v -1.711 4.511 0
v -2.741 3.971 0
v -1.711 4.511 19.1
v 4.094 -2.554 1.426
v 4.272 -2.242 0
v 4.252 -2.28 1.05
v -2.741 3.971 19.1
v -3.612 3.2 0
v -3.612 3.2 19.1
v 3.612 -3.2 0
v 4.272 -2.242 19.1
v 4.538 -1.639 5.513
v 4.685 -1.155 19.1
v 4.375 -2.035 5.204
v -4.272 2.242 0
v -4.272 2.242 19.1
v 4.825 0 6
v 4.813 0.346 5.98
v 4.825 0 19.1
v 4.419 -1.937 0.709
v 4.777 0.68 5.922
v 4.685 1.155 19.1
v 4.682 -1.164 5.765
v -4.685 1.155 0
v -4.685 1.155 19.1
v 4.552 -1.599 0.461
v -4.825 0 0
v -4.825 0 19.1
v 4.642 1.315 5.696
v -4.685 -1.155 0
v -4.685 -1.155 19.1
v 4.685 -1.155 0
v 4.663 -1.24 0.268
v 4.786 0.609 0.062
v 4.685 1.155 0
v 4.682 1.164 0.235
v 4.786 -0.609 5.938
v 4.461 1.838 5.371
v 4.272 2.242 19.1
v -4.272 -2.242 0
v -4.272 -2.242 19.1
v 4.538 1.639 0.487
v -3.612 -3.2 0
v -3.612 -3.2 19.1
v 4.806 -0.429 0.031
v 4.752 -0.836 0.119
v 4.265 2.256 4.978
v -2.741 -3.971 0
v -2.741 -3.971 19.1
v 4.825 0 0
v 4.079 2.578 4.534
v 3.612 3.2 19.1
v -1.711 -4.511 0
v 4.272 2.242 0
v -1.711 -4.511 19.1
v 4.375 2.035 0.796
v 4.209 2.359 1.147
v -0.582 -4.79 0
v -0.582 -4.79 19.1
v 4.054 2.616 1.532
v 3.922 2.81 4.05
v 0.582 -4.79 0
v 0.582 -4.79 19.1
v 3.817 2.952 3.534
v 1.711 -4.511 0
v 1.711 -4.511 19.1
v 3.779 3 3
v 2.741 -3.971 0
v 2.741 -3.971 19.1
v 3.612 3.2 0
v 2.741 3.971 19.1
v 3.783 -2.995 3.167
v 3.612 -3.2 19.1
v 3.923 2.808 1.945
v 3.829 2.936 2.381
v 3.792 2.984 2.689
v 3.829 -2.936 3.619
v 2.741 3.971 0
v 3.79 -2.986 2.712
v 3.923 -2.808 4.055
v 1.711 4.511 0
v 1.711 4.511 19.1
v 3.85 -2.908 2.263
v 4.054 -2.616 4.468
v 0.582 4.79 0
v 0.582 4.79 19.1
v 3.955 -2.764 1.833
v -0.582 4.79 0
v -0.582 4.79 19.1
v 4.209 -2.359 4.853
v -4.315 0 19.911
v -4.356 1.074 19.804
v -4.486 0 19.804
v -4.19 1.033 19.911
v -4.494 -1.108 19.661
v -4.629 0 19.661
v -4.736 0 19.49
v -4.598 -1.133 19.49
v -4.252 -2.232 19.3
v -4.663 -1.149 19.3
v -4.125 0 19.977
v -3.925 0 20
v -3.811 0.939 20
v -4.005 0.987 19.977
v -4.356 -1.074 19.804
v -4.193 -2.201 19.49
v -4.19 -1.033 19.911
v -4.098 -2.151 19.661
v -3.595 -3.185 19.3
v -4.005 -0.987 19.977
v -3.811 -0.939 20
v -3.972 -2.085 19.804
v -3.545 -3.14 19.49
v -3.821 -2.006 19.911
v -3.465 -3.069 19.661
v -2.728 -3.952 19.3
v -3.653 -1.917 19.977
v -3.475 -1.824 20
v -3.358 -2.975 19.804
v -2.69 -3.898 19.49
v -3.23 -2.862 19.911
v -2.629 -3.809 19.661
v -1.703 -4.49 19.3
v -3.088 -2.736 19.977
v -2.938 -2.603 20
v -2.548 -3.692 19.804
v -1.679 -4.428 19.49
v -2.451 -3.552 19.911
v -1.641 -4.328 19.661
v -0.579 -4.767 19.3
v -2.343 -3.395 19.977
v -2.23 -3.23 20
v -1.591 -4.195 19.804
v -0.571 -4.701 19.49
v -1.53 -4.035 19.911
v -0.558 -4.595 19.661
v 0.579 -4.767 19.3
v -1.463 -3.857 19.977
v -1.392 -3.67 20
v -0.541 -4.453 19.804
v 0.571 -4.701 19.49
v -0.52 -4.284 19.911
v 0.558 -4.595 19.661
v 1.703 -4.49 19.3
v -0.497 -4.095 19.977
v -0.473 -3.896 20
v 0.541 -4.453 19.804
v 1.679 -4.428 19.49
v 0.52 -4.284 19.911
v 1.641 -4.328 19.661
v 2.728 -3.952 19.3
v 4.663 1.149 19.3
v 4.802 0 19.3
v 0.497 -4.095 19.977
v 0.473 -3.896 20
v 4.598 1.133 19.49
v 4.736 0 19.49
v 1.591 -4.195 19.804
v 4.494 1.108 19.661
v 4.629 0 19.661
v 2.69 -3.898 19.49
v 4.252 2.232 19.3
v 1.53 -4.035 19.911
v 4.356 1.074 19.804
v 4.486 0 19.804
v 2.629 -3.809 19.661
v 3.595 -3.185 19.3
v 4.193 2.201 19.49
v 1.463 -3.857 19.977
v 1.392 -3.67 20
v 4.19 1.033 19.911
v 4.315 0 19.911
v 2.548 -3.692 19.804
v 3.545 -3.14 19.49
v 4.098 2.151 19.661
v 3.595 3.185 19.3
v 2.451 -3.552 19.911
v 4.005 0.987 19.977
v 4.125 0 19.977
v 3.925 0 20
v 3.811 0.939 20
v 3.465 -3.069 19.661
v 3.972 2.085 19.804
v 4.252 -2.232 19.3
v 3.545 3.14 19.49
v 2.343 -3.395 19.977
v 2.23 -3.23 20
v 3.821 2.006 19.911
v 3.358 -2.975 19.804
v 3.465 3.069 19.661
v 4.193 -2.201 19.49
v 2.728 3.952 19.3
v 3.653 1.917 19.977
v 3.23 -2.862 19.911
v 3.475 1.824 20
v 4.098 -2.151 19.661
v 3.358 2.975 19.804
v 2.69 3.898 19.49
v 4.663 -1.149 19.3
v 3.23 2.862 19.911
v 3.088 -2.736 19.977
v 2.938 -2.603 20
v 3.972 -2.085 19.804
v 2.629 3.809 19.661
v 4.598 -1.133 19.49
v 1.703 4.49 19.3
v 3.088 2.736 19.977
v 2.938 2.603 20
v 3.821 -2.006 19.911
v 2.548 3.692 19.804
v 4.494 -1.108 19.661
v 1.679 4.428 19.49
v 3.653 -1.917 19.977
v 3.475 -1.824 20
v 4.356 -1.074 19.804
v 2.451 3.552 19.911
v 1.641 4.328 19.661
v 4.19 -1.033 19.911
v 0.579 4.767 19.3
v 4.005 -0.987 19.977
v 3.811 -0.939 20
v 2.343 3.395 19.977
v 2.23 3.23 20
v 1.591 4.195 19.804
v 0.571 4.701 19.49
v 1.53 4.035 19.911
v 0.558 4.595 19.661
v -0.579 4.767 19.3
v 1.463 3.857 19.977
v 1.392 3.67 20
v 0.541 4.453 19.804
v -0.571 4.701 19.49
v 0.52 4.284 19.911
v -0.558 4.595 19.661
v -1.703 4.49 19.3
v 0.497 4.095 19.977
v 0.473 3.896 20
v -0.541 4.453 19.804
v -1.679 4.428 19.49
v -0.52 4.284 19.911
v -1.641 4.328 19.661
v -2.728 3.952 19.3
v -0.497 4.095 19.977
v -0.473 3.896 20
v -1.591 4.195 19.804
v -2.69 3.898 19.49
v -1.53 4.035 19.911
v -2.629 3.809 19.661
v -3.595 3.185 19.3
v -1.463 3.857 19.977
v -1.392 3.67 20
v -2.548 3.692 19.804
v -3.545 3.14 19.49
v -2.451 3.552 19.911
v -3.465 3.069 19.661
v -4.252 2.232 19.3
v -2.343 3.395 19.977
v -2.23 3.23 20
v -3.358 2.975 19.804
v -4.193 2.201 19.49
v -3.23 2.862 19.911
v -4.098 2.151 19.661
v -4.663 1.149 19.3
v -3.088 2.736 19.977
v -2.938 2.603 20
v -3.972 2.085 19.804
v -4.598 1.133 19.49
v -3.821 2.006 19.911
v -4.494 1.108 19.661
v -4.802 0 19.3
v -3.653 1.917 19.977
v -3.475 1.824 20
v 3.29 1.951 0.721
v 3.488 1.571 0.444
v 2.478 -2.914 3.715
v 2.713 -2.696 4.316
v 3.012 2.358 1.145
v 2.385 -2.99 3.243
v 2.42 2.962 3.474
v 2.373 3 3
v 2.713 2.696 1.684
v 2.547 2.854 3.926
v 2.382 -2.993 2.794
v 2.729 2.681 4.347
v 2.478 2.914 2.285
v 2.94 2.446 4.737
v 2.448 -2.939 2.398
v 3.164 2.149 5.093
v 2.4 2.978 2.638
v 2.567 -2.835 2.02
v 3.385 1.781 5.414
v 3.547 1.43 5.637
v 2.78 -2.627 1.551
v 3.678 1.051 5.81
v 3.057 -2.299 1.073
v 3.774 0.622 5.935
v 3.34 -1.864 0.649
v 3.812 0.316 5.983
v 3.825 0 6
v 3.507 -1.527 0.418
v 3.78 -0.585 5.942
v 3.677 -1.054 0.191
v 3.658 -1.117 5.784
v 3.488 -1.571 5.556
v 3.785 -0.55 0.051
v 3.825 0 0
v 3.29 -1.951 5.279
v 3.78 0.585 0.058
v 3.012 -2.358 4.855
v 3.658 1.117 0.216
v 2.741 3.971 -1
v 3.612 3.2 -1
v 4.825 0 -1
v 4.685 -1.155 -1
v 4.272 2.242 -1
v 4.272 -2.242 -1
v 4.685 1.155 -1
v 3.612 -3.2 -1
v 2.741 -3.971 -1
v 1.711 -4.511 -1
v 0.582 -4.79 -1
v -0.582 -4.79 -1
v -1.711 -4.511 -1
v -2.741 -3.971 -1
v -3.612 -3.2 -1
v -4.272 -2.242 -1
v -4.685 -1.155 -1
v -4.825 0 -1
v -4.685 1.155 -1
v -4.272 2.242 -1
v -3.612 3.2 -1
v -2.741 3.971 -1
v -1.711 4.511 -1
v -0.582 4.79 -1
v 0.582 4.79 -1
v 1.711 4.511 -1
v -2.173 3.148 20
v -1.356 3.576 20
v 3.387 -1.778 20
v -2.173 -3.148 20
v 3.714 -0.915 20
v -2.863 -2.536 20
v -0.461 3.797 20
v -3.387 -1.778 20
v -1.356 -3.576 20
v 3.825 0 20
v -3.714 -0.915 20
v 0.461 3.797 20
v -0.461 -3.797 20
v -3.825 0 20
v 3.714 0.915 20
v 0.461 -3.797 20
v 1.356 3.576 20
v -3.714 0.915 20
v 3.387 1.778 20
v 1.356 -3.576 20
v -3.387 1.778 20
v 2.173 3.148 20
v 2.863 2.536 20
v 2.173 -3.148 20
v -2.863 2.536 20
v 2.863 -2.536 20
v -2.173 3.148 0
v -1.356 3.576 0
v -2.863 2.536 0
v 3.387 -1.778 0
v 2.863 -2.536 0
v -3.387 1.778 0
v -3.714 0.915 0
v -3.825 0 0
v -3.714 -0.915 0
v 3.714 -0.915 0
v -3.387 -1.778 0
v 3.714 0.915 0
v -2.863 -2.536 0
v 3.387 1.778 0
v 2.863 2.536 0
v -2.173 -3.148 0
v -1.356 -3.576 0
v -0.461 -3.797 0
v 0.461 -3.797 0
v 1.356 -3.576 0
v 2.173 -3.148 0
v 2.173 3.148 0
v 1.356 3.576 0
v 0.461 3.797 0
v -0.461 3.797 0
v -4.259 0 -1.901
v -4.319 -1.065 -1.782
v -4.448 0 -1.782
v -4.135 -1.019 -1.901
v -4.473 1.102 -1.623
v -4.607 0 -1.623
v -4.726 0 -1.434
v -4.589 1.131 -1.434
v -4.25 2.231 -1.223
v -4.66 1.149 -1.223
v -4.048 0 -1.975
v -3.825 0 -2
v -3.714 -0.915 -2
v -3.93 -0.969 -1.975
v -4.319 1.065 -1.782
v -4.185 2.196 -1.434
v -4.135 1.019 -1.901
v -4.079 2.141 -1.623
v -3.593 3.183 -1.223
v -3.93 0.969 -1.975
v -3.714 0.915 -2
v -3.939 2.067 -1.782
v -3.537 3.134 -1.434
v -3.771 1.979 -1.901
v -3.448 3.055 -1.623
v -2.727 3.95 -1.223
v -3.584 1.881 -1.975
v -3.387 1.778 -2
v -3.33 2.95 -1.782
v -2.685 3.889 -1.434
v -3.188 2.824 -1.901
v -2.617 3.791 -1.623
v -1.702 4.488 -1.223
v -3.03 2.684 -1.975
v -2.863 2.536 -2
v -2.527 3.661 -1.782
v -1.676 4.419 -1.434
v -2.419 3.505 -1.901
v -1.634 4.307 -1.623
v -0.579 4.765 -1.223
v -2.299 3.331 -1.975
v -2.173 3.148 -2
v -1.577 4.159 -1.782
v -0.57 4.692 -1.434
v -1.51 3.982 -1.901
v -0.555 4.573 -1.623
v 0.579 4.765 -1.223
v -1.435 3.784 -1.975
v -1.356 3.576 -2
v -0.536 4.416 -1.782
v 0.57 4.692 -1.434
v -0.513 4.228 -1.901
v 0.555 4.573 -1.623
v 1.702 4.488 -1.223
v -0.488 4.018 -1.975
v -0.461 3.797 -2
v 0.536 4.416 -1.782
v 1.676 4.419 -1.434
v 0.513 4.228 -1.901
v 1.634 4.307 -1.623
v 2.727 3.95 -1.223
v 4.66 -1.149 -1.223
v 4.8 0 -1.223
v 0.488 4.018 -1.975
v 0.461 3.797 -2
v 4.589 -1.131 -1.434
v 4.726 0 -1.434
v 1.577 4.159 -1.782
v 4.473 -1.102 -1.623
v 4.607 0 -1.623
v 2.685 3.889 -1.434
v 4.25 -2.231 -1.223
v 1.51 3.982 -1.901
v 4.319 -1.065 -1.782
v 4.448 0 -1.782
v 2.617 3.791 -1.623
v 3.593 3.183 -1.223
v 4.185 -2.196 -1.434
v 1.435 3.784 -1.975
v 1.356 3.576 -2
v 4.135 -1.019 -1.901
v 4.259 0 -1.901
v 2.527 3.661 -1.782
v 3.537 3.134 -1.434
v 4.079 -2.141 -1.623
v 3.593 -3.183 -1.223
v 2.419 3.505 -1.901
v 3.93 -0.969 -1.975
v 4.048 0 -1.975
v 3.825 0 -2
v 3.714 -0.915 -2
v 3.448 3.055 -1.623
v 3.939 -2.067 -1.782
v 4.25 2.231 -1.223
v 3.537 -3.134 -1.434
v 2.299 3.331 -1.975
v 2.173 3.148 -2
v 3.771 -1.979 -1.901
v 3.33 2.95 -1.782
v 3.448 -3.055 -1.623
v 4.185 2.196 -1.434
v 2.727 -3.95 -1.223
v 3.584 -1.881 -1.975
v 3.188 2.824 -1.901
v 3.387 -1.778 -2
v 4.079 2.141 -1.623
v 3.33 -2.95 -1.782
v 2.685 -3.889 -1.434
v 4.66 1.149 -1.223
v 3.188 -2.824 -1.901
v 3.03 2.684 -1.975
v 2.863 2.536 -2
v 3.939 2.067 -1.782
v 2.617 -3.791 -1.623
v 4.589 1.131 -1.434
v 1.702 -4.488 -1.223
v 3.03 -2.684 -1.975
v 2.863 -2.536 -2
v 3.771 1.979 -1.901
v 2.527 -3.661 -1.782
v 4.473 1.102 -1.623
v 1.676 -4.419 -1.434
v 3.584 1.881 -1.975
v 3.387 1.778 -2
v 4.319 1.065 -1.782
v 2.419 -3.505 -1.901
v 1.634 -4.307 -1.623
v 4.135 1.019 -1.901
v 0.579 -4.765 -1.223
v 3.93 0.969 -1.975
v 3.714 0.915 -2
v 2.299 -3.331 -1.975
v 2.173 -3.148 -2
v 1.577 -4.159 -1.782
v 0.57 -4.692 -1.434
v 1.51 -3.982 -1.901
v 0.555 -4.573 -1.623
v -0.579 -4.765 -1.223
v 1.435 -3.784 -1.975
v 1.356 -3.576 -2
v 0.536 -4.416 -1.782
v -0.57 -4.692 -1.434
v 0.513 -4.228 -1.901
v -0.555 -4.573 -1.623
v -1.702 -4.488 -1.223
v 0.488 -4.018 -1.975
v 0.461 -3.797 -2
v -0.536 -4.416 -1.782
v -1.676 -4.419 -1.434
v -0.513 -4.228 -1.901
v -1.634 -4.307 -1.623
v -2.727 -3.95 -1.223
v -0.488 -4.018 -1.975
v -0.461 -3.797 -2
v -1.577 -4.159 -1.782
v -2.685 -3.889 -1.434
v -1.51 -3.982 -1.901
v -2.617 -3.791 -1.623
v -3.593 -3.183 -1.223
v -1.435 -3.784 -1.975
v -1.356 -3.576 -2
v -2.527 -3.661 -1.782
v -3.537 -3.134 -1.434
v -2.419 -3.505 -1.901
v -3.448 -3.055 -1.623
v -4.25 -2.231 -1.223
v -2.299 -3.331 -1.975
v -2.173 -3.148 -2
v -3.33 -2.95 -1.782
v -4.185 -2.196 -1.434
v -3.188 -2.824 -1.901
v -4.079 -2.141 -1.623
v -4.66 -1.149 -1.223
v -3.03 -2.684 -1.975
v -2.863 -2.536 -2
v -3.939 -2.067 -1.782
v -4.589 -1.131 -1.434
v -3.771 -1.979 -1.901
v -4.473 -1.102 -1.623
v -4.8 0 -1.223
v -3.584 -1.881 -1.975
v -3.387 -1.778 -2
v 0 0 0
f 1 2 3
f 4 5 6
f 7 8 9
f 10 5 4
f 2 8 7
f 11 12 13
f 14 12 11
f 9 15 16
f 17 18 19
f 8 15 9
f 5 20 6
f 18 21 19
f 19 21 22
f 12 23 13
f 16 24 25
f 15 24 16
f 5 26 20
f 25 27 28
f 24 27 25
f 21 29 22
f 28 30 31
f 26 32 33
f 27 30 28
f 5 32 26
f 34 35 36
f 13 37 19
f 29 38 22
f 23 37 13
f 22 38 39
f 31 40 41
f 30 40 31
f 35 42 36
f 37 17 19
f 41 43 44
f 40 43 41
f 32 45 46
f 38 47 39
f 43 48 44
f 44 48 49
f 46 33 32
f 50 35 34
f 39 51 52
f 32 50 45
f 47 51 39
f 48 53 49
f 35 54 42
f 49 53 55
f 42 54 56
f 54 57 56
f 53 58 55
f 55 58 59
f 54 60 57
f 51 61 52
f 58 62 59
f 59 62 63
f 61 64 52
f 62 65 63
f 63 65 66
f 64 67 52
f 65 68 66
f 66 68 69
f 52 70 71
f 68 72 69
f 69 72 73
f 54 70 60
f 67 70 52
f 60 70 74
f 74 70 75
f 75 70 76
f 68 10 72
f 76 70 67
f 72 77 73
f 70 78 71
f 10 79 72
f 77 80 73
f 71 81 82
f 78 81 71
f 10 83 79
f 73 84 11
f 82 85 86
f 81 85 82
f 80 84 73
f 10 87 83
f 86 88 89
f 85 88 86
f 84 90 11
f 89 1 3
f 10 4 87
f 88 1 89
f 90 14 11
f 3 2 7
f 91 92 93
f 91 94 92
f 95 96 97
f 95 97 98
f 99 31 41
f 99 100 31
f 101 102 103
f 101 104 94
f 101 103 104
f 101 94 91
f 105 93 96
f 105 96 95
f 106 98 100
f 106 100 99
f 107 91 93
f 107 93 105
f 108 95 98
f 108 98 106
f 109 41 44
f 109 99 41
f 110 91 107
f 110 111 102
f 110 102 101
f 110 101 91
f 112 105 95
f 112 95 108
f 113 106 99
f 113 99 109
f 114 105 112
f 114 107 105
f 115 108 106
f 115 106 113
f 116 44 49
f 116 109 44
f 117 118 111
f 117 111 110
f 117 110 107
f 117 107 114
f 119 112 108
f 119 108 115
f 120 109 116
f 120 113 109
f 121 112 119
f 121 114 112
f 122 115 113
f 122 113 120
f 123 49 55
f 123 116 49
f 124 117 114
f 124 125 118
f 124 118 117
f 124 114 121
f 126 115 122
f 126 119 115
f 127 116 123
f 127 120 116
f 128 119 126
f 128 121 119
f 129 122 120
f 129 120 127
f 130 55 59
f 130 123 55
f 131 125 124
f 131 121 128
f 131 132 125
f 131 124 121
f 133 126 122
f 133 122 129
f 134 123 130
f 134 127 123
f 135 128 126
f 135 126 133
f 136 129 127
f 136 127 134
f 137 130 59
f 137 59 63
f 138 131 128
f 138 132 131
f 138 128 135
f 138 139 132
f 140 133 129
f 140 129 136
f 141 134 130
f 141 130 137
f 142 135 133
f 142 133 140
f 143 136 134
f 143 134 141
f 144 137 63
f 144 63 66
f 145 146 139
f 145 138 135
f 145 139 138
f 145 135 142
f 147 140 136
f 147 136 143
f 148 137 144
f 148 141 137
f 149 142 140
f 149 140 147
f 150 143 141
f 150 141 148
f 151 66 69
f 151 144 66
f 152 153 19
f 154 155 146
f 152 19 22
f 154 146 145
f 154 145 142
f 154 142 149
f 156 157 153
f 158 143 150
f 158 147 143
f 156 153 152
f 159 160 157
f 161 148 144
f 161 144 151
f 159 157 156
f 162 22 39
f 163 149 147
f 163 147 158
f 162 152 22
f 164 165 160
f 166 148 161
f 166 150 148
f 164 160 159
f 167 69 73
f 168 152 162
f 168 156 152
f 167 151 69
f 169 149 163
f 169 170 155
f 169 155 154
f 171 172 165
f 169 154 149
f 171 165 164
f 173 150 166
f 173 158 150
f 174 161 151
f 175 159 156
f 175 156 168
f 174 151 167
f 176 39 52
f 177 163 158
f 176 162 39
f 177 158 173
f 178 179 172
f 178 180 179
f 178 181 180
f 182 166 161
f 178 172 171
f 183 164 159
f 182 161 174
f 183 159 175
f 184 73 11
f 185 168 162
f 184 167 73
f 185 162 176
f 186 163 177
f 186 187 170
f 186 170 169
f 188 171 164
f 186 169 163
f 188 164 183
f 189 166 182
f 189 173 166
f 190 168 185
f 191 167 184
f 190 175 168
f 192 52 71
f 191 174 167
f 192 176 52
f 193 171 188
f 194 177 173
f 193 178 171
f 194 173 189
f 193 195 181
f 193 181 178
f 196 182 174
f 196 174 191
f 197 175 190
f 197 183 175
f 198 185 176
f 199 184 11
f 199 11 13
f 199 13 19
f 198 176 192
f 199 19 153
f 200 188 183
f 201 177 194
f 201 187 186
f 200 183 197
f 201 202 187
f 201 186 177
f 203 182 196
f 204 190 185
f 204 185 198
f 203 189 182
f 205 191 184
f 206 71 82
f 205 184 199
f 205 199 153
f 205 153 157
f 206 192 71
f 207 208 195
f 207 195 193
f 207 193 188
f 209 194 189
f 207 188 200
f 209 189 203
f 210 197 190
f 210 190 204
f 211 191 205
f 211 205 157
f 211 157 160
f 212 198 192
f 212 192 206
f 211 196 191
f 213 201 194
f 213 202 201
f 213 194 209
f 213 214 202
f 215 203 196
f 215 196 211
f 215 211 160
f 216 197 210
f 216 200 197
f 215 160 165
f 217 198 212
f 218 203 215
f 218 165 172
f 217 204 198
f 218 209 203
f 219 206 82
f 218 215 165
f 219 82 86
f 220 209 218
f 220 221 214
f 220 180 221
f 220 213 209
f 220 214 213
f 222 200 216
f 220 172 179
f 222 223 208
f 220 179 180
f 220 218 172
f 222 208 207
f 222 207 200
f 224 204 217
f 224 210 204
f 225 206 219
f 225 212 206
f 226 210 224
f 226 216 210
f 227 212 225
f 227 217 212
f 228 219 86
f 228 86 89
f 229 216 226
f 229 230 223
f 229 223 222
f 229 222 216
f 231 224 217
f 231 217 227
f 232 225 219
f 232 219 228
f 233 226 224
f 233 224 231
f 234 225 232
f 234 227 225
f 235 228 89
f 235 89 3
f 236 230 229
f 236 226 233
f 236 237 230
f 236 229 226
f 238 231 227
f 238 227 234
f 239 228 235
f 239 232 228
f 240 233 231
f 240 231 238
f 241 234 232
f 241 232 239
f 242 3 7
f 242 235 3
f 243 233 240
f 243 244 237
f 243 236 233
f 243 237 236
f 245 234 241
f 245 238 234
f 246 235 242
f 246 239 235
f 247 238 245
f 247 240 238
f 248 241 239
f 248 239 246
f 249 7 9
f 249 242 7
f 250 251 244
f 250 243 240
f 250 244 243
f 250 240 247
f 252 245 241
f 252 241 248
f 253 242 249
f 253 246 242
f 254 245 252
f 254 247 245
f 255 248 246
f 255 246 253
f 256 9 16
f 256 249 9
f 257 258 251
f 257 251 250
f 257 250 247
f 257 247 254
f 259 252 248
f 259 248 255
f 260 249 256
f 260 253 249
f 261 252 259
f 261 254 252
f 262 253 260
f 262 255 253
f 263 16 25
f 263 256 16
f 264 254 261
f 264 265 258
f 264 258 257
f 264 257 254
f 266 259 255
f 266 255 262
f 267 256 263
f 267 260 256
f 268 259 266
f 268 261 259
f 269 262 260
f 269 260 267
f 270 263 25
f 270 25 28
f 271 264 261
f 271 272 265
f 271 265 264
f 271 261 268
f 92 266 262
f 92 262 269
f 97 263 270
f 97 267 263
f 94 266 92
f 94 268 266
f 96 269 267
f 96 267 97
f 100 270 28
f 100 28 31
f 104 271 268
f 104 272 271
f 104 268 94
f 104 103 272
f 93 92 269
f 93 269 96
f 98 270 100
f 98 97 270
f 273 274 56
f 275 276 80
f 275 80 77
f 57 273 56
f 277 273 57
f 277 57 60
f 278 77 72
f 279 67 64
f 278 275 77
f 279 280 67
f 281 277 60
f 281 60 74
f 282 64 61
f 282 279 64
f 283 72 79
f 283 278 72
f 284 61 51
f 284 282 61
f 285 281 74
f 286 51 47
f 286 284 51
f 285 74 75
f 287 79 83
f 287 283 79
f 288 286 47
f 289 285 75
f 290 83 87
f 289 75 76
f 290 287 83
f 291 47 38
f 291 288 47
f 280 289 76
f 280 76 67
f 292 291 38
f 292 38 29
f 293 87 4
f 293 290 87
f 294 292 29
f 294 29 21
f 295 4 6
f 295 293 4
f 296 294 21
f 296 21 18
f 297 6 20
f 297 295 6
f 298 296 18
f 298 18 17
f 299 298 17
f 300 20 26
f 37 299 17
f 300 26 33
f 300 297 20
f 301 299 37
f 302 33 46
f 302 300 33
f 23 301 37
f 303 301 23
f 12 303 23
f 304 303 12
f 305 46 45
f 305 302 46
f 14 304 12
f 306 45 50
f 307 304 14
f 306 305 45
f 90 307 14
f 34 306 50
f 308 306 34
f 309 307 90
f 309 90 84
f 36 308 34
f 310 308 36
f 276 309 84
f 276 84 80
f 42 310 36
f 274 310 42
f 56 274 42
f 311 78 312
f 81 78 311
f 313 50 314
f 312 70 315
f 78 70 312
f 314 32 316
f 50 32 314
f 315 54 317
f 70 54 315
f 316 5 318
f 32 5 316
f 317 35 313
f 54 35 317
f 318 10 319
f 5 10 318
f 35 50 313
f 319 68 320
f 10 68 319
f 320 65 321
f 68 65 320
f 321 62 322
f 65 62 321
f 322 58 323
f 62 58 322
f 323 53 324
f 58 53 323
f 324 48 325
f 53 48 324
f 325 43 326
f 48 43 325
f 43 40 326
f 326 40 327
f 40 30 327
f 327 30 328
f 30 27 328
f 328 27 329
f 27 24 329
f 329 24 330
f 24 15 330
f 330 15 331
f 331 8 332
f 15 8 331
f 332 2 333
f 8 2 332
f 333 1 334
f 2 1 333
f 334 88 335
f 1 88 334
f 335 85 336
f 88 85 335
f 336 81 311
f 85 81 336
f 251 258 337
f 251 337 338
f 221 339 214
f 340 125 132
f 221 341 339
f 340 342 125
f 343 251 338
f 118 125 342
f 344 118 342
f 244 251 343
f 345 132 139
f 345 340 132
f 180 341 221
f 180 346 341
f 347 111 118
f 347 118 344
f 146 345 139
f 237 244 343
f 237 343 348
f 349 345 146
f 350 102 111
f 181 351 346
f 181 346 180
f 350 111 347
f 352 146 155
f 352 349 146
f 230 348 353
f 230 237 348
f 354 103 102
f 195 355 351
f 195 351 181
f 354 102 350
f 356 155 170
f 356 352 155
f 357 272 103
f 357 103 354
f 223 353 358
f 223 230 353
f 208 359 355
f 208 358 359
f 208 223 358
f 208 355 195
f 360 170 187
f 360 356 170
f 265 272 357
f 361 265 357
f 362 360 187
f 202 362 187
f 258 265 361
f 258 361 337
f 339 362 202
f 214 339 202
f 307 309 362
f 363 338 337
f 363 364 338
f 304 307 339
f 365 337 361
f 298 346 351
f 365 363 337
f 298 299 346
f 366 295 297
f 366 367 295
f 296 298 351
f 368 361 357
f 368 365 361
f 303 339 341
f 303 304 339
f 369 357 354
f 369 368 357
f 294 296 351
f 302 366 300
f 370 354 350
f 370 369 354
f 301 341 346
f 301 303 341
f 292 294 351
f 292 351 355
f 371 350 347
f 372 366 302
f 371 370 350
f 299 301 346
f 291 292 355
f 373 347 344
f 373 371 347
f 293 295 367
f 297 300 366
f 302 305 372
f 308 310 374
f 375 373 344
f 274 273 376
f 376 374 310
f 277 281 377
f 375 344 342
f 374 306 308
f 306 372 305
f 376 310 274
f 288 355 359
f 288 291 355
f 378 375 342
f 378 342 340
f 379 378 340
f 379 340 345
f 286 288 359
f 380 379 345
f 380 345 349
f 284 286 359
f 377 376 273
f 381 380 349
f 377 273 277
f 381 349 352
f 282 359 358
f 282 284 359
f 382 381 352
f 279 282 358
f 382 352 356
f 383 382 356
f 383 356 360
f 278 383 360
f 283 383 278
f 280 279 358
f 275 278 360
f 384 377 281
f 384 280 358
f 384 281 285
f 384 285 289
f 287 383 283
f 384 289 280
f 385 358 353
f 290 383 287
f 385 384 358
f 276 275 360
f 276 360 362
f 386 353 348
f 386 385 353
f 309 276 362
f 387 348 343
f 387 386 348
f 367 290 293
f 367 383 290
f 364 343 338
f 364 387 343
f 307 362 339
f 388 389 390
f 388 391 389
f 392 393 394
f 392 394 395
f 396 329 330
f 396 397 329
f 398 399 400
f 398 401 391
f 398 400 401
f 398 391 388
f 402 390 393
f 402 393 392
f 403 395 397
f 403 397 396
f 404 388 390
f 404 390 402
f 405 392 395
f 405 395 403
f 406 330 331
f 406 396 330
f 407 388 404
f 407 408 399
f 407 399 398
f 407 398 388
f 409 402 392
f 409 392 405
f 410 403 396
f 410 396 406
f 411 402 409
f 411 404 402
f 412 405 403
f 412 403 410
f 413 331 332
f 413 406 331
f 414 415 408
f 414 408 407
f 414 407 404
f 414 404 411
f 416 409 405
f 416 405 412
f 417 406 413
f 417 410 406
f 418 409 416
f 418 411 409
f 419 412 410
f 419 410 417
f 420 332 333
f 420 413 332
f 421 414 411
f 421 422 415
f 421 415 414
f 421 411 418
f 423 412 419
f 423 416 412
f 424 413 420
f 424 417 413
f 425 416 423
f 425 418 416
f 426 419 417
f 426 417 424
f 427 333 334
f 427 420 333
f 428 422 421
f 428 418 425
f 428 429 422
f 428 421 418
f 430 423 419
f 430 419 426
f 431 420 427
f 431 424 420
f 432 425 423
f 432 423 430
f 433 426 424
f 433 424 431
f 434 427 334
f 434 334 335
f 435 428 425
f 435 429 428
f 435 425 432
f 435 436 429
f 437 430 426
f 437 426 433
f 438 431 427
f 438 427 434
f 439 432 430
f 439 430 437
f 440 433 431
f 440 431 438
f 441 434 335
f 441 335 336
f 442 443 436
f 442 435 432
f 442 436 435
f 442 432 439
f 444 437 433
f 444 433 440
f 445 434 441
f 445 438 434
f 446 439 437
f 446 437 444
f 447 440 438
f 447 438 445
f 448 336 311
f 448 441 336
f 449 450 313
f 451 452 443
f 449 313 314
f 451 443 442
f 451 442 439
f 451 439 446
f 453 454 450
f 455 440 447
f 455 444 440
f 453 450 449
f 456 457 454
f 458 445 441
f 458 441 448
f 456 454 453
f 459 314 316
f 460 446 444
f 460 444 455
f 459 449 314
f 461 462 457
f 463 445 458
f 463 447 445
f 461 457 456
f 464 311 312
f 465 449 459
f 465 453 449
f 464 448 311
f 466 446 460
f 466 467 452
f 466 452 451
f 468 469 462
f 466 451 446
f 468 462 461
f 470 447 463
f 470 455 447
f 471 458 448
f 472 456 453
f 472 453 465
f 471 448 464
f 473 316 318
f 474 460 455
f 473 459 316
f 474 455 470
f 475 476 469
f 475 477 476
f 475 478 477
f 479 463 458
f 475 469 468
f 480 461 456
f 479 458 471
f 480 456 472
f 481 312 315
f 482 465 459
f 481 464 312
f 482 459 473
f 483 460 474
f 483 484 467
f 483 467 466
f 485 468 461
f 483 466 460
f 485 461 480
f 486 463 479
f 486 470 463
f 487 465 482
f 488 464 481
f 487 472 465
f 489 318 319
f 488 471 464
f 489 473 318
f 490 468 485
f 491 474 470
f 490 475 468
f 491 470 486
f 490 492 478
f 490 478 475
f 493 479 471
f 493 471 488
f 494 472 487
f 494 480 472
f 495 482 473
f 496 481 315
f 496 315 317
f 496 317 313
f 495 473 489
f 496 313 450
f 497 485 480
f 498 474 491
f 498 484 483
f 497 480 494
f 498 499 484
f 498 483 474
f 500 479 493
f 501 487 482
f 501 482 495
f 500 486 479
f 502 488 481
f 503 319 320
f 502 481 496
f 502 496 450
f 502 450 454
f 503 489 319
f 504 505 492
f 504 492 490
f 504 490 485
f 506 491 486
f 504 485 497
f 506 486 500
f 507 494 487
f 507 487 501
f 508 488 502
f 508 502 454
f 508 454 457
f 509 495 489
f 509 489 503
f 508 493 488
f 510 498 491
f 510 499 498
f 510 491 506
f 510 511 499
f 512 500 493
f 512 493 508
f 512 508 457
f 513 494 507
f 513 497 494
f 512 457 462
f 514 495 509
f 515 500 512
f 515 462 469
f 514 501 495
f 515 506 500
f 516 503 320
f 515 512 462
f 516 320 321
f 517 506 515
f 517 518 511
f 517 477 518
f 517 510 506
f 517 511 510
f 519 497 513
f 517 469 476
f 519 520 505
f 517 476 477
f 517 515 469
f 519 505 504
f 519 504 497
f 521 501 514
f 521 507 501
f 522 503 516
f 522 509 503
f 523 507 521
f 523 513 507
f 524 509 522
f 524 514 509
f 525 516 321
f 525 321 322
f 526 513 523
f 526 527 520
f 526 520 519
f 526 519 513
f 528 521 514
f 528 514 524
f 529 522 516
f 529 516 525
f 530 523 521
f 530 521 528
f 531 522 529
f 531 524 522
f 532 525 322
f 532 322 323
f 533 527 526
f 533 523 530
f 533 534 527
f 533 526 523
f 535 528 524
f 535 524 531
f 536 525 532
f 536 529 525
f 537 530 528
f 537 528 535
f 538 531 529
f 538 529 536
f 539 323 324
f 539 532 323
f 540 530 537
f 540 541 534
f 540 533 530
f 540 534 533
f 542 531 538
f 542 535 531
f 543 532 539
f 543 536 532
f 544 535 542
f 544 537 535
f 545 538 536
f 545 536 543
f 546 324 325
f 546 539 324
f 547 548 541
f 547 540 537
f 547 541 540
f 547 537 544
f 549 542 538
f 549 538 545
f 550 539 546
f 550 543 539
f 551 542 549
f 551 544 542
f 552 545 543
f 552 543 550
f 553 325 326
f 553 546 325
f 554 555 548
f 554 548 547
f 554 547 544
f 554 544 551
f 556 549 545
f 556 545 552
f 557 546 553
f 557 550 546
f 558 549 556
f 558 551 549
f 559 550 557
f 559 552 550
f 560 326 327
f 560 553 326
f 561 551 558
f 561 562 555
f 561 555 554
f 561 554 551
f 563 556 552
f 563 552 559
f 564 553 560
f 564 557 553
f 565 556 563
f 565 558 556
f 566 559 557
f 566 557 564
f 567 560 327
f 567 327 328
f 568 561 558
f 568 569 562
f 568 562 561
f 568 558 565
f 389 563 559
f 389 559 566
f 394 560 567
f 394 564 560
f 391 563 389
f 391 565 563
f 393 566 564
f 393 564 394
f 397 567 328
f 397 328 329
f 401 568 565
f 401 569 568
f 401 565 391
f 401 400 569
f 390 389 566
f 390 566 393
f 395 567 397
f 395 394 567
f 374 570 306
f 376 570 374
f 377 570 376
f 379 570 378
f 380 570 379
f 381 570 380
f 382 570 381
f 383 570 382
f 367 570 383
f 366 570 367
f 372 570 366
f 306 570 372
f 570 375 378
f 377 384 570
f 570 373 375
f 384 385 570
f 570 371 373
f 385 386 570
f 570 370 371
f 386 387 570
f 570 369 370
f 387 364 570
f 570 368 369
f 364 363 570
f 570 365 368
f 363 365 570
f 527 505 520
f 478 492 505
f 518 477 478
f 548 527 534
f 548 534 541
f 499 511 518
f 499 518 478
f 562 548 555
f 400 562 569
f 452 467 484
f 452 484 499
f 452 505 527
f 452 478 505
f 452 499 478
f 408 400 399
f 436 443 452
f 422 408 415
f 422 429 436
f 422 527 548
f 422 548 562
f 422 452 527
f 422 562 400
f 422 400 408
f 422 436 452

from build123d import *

# Parameters (mm, degrees)
SKETCH002_R  = 3
PAD002_DEPTH = 10
SKETCH_R     = 4.825
SKETCH_R_2   = 3.825
PAD_DEPTH    = 20
SKETCH001_R  = 4.825
PAD001_DEPTH = 2
FILLET_R     = 1
FILLET001_R  = 0.9


with BuildPart() as body001:
    # Sketch002 → Pad002 (new body)
    with BuildSketch(Plane.YZ):
        with Locations((0, 3)):
            Circle(SKETCH002_R)
    extrude(amount=PAD002_DEPTH)


with BuildPart() as body:
    # Sketch → Pad (new body)
    with BuildSketch(Plane.XY):
        Circle(SKETCH_R)
        Circle(SKETCH_R_2, mode=Mode.SUBTRACT)
    extrude(amount=PAD_DEPTH)

    # Sketch001 (on Face3 of Pad) → Pad001 (join)
    with BuildSketch(Plane(origin=(0, 0, 0), x_dir=(1, 0, 0), z_dir=(0, 0, -1))):
        Circle(SKETCH001_R)
    extrude(amount=PAD001_DEPTH)

    # Boolean: cut Body001
    add(body001.part, mode=Mode.SUBTRACT)

    # Fillet
    fillet_edges = [body.edges().sort_by_distance(p)[0] for p in [
        (-4.825, 0, -2),
    ]]
    fillet(fillet_edges, radius=FILLET_R)

    # Fillet001
    fillet001_edges = [body.edges().sort_by_distance(p)[0] for p in [
        (-4.825, 0, 20),
    ]]
    fillet(fillet001_edges, radius=FILLET001_R)


solid = body.part
